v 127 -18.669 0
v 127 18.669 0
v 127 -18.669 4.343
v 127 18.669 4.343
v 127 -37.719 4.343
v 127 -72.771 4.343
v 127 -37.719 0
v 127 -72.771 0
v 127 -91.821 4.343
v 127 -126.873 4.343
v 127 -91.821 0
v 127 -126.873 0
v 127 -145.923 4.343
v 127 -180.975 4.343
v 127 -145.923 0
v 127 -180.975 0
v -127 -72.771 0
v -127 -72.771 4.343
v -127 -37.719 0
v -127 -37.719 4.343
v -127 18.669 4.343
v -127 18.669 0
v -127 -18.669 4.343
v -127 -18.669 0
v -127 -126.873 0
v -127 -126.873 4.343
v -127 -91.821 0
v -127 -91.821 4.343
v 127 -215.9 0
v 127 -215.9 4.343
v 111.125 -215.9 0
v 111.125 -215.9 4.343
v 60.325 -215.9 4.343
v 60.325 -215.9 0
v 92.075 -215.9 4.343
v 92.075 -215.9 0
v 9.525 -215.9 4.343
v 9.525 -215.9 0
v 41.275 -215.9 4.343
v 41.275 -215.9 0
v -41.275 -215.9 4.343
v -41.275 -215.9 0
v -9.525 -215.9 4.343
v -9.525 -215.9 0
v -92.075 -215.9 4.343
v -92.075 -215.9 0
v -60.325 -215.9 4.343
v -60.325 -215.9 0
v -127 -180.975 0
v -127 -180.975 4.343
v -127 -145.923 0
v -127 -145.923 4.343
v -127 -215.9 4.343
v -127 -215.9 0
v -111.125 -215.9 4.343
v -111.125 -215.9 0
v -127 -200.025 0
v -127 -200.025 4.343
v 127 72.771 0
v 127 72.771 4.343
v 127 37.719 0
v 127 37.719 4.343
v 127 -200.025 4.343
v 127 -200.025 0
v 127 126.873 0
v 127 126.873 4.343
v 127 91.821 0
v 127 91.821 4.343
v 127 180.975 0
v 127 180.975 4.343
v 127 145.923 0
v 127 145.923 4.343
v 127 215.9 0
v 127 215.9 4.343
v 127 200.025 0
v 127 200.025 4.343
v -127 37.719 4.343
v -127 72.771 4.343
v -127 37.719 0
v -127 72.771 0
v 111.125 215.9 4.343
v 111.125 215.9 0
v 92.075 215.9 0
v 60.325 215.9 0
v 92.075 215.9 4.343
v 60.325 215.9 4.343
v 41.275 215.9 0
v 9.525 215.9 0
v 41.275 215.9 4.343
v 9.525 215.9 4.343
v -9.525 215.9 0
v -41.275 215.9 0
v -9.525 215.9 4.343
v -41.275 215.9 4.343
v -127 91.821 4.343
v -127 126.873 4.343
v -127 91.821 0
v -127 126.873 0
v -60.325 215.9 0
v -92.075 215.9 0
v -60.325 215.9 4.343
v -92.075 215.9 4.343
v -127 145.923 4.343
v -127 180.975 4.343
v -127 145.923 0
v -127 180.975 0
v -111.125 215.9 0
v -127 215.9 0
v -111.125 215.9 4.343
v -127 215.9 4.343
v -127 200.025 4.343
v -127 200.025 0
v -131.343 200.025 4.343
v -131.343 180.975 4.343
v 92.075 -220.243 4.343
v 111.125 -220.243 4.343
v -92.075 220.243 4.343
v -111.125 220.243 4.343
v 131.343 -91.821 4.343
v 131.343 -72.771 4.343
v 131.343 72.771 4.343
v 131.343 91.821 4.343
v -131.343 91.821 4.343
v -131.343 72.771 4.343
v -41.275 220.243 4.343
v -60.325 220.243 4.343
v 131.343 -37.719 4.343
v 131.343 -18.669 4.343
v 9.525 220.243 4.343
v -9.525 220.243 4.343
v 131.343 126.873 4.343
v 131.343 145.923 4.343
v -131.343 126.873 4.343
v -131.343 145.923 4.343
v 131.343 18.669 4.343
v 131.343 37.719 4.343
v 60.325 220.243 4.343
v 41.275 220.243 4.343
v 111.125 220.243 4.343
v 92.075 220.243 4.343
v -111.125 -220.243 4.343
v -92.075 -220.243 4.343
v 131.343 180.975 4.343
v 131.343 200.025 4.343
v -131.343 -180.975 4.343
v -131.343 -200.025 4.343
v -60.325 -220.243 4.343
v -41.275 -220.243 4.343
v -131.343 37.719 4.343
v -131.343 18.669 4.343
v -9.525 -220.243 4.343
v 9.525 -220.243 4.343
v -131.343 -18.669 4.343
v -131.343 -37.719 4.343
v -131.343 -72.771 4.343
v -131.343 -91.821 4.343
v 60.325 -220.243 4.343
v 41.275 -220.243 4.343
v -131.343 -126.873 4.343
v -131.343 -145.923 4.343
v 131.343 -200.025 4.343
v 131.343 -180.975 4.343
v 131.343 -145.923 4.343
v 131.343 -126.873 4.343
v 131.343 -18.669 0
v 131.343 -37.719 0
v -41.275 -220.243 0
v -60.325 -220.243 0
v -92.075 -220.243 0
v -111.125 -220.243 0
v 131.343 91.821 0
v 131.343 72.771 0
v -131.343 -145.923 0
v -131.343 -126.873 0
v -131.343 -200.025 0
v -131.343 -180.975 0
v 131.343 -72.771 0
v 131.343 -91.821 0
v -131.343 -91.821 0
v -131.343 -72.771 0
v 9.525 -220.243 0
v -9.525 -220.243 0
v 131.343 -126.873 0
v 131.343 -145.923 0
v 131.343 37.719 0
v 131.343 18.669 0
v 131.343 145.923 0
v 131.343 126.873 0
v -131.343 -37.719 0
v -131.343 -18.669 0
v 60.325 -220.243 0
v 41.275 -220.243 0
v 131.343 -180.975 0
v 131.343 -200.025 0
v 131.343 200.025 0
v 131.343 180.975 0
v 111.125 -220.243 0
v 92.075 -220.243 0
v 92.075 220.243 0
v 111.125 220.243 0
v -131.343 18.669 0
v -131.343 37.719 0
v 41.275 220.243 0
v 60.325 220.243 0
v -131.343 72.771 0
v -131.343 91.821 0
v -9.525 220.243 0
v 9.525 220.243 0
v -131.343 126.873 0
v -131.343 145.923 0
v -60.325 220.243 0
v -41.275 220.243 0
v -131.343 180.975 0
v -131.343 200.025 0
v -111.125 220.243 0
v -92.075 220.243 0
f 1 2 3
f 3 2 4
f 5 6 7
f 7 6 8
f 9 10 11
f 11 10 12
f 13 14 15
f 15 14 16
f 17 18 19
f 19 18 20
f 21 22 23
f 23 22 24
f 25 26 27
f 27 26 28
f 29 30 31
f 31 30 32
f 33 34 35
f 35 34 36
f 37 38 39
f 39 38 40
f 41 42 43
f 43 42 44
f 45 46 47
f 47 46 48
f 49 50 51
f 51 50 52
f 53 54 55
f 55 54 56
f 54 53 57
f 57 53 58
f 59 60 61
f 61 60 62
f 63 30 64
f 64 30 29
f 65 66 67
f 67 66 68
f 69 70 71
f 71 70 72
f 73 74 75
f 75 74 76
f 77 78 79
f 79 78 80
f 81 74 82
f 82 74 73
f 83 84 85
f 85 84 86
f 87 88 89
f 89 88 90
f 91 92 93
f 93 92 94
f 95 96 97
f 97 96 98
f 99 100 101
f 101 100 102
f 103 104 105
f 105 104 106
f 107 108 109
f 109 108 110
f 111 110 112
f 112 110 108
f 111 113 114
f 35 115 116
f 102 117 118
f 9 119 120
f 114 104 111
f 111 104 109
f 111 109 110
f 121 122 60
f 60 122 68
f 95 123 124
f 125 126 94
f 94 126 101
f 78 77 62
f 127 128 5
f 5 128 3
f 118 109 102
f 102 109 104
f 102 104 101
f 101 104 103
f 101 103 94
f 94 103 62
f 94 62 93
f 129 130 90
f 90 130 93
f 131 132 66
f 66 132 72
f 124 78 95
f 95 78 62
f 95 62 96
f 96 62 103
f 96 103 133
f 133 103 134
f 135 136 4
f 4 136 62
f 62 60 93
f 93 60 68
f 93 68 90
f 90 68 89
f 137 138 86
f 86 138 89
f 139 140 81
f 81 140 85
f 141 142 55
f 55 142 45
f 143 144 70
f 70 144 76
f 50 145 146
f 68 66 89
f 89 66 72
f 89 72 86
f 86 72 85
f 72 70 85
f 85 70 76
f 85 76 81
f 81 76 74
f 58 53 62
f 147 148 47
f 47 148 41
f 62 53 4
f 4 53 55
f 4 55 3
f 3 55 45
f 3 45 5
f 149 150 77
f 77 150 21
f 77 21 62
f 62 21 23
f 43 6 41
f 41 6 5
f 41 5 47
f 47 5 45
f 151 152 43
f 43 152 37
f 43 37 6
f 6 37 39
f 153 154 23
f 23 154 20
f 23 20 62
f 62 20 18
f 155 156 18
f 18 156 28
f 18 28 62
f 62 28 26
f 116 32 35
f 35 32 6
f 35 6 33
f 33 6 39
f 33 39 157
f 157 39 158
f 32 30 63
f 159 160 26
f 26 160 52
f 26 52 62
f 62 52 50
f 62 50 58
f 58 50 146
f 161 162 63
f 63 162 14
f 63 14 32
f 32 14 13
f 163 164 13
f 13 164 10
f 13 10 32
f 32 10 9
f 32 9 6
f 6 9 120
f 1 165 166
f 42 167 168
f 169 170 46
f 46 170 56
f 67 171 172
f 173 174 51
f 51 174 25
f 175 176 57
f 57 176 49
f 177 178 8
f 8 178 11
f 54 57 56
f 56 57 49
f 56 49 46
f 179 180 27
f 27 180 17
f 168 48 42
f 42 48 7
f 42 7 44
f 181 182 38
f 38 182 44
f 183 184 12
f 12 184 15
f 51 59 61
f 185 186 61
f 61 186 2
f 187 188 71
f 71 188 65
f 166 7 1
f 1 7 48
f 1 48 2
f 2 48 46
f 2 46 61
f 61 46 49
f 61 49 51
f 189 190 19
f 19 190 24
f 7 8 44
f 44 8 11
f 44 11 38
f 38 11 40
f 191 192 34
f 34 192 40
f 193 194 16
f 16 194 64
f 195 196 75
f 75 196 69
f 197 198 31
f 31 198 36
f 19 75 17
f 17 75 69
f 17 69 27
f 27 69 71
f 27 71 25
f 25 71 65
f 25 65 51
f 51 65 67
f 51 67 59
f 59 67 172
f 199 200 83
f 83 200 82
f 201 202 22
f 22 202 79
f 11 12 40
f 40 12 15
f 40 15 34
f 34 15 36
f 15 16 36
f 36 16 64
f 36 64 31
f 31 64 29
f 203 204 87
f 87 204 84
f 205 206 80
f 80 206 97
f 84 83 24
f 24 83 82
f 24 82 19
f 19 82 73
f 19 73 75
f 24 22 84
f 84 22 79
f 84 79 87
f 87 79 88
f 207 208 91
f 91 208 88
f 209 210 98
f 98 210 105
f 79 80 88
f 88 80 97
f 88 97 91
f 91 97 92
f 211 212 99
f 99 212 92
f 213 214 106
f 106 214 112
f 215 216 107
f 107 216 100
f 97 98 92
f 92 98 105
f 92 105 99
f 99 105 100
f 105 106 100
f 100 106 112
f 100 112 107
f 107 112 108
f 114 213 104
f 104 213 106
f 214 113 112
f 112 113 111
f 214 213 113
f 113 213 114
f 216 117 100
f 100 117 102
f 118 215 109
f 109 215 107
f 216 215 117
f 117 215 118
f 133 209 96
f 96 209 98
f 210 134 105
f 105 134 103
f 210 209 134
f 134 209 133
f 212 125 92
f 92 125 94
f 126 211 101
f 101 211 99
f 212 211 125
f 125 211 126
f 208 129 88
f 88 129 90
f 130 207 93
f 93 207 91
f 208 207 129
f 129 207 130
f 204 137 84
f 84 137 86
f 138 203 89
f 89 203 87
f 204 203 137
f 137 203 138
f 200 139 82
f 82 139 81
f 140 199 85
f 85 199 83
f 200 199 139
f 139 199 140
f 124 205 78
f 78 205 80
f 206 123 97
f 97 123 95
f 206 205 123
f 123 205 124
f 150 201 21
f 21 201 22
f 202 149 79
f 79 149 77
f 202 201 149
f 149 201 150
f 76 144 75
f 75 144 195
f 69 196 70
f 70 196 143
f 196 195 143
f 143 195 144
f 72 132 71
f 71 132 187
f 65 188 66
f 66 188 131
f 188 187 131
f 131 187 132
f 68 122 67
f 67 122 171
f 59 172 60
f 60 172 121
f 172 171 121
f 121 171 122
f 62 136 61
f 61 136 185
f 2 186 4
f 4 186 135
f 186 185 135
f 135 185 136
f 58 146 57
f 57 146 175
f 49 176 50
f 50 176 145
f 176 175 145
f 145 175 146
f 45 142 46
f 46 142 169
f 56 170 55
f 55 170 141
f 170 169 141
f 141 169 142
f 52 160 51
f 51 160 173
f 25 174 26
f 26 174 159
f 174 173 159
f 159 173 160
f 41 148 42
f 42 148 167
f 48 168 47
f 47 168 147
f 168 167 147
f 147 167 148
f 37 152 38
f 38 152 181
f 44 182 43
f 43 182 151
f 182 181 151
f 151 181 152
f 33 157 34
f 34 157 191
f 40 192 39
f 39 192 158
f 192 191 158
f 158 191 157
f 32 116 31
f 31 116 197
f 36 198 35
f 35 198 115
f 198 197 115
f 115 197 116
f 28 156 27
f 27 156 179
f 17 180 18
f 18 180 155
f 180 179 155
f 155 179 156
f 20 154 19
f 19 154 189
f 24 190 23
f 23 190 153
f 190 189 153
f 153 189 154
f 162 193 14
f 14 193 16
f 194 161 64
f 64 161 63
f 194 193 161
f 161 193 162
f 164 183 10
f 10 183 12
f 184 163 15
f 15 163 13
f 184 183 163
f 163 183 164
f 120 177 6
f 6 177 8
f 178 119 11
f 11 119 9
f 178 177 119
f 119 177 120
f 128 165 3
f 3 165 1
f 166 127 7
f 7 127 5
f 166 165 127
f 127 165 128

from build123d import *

# Parameters (mm, degrees)
SKETCH1_W                 = 254
SKETCH1_H                 = 431.8
BOSS_EXTRUDE1_DEPTH       = 4.3434
SKETCH2_W                 = 8.6868
SKETCH2_H                 = 19.05
SKETCH2_W_2               = 19.05
SKETCH2_H_2               = 8.6868
BOSS_EXTRUDE2_DEPTH       = 4.3434
MIRROR2_COPY_1_SKETCH_W   = 8.6868
MIRROR2_COPY_1_SKETCH_H   = 19.05
MIRROR2_COPY_1_SKETCH_W_2 = 19.05
MIRROR2_COPY_1_SKETCH_H_2 = 8.6868
MIRROR2_COPY_1_DEPTH      = 4.3434


with BuildPart() as part:
    # Sketch1 → Boss-Extrude1 (new body)
    with BuildSketch(Plane.XY):
        Rectangle(SKETCH1_W, SKETCH1_H)
    extrude(amount=BOSS_EXTRUDE1_DEPTH)

    # Sketch2 → Boss-Extrude2 (add)
    with BuildSketch(Plane.XY.offset(4.3434)):
        with Locations((-127, 190.5)):
            Rectangle(SKETCH2_W, SKETCH2_H)
        with Locations((-101.6, 215.9)):
            Rectangle(SKETCH2_W_2, SKETCH2_H_2)
        with Locations((-50.8, 215.9)):
            Rectangle(SKETCH2_W_2, SKETCH2_H_2)
        with Locations((0, 215.9)):
            Rectangle(SKETCH2_W_2, SKETCH2_H_2)
        with Locations((50.8, 215.9)):
            Rectangle(SKETCH2_W_2, SKETCH2_H_2)
        with Locations((101.6, 215.9)):
            Rectangle(SKETCH2_W_2, SKETCH2_H_2)
        with Locations((-127, 136.398)):
            Rectangle(SKETCH2_W, SKETCH2_H)
        with Locations((-127, 82.296)):
            Rectangle(SKETCH2_W, SKETCH2_H)
        with Locations((-127, 28.194)):
            Rectangle(SKETCH2_W, SKETCH2_H)
    boss_extrude2 = extrude(amount=-BOSS_EXTRUDE2_DEPTH)

    # Mirror1: Boss-Extrude2 across plane
    add(boss_extrude2.mirror(Plane(origin=(0, 0, 0), x_dir=(0, 0, 1), z_dir=(1, 0, 0))))

    # Mirror2: Boss-Extrude2 across plane
    add(boss_extrude2.mirror(Plane.ZX))

    # Mirror2 copy 1 sketch → Mirror2 copy 1 (add)
    with BuildSketch(Plane(origin=(0, 0, 4.3434), x_dir=(-1, 0, 0), z_dir=(0, 0, 1))):
        with Locations((-127, 190.5)):
            Rectangle(MIRROR2_COPY_1_SKETCH_W, MIRROR2_COPY_1_SKETCH_H)
        with Locations((-101.6, 215.9)):
            Rectangle(MIRROR2_COPY_1_SKETCH_W_2, MIRROR2_COPY_1_SKETCH_H_2)
        with Locations((-50.8, 215.9)):
            Rectangle(MIRROR2_COPY_1_SKETCH_W_2, MIRROR2_COPY_1_SKETCH_H_2)
        with Locations((0, 215.9)):
            Rectangle(MIRROR2_COPY_1_SKETCH_W_2, MIRROR2_COPY_1_SKETCH_H_2)
        with Locations((50.8, 215.9)):
            Rectangle(MIRROR2_COPY_1_SKETCH_W_2, MIRROR2_COPY_1_SKETCH_H_2)
        with Locations((101.6, 215.9)):
            Rectangle(MIRROR2_COPY_1_SKETCH_W_2, MIRROR2_COPY_1_SKETCH_H_2)
        with Locations((-127, 136.398)):
            Rectangle(MIRROR2_COPY_1_SKETCH_W, MIRROR2_COPY_1_SKETCH_H)
        with Locations((-127, 82.296)):
            Rectangle(MIRROR2_COPY_1_SKETCH_W, MIRROR2_COPY_1_SKETCH_H)
        with Locations((-127, 28.194)):
            Rectangle(MIRROR2_COPY_1_SKETCH_W, MIRROR2_COPY_1_SKETCH_H)
    extrude(amount=-MIRROR2_COPY_1_DEPTH)


solid = part.part
